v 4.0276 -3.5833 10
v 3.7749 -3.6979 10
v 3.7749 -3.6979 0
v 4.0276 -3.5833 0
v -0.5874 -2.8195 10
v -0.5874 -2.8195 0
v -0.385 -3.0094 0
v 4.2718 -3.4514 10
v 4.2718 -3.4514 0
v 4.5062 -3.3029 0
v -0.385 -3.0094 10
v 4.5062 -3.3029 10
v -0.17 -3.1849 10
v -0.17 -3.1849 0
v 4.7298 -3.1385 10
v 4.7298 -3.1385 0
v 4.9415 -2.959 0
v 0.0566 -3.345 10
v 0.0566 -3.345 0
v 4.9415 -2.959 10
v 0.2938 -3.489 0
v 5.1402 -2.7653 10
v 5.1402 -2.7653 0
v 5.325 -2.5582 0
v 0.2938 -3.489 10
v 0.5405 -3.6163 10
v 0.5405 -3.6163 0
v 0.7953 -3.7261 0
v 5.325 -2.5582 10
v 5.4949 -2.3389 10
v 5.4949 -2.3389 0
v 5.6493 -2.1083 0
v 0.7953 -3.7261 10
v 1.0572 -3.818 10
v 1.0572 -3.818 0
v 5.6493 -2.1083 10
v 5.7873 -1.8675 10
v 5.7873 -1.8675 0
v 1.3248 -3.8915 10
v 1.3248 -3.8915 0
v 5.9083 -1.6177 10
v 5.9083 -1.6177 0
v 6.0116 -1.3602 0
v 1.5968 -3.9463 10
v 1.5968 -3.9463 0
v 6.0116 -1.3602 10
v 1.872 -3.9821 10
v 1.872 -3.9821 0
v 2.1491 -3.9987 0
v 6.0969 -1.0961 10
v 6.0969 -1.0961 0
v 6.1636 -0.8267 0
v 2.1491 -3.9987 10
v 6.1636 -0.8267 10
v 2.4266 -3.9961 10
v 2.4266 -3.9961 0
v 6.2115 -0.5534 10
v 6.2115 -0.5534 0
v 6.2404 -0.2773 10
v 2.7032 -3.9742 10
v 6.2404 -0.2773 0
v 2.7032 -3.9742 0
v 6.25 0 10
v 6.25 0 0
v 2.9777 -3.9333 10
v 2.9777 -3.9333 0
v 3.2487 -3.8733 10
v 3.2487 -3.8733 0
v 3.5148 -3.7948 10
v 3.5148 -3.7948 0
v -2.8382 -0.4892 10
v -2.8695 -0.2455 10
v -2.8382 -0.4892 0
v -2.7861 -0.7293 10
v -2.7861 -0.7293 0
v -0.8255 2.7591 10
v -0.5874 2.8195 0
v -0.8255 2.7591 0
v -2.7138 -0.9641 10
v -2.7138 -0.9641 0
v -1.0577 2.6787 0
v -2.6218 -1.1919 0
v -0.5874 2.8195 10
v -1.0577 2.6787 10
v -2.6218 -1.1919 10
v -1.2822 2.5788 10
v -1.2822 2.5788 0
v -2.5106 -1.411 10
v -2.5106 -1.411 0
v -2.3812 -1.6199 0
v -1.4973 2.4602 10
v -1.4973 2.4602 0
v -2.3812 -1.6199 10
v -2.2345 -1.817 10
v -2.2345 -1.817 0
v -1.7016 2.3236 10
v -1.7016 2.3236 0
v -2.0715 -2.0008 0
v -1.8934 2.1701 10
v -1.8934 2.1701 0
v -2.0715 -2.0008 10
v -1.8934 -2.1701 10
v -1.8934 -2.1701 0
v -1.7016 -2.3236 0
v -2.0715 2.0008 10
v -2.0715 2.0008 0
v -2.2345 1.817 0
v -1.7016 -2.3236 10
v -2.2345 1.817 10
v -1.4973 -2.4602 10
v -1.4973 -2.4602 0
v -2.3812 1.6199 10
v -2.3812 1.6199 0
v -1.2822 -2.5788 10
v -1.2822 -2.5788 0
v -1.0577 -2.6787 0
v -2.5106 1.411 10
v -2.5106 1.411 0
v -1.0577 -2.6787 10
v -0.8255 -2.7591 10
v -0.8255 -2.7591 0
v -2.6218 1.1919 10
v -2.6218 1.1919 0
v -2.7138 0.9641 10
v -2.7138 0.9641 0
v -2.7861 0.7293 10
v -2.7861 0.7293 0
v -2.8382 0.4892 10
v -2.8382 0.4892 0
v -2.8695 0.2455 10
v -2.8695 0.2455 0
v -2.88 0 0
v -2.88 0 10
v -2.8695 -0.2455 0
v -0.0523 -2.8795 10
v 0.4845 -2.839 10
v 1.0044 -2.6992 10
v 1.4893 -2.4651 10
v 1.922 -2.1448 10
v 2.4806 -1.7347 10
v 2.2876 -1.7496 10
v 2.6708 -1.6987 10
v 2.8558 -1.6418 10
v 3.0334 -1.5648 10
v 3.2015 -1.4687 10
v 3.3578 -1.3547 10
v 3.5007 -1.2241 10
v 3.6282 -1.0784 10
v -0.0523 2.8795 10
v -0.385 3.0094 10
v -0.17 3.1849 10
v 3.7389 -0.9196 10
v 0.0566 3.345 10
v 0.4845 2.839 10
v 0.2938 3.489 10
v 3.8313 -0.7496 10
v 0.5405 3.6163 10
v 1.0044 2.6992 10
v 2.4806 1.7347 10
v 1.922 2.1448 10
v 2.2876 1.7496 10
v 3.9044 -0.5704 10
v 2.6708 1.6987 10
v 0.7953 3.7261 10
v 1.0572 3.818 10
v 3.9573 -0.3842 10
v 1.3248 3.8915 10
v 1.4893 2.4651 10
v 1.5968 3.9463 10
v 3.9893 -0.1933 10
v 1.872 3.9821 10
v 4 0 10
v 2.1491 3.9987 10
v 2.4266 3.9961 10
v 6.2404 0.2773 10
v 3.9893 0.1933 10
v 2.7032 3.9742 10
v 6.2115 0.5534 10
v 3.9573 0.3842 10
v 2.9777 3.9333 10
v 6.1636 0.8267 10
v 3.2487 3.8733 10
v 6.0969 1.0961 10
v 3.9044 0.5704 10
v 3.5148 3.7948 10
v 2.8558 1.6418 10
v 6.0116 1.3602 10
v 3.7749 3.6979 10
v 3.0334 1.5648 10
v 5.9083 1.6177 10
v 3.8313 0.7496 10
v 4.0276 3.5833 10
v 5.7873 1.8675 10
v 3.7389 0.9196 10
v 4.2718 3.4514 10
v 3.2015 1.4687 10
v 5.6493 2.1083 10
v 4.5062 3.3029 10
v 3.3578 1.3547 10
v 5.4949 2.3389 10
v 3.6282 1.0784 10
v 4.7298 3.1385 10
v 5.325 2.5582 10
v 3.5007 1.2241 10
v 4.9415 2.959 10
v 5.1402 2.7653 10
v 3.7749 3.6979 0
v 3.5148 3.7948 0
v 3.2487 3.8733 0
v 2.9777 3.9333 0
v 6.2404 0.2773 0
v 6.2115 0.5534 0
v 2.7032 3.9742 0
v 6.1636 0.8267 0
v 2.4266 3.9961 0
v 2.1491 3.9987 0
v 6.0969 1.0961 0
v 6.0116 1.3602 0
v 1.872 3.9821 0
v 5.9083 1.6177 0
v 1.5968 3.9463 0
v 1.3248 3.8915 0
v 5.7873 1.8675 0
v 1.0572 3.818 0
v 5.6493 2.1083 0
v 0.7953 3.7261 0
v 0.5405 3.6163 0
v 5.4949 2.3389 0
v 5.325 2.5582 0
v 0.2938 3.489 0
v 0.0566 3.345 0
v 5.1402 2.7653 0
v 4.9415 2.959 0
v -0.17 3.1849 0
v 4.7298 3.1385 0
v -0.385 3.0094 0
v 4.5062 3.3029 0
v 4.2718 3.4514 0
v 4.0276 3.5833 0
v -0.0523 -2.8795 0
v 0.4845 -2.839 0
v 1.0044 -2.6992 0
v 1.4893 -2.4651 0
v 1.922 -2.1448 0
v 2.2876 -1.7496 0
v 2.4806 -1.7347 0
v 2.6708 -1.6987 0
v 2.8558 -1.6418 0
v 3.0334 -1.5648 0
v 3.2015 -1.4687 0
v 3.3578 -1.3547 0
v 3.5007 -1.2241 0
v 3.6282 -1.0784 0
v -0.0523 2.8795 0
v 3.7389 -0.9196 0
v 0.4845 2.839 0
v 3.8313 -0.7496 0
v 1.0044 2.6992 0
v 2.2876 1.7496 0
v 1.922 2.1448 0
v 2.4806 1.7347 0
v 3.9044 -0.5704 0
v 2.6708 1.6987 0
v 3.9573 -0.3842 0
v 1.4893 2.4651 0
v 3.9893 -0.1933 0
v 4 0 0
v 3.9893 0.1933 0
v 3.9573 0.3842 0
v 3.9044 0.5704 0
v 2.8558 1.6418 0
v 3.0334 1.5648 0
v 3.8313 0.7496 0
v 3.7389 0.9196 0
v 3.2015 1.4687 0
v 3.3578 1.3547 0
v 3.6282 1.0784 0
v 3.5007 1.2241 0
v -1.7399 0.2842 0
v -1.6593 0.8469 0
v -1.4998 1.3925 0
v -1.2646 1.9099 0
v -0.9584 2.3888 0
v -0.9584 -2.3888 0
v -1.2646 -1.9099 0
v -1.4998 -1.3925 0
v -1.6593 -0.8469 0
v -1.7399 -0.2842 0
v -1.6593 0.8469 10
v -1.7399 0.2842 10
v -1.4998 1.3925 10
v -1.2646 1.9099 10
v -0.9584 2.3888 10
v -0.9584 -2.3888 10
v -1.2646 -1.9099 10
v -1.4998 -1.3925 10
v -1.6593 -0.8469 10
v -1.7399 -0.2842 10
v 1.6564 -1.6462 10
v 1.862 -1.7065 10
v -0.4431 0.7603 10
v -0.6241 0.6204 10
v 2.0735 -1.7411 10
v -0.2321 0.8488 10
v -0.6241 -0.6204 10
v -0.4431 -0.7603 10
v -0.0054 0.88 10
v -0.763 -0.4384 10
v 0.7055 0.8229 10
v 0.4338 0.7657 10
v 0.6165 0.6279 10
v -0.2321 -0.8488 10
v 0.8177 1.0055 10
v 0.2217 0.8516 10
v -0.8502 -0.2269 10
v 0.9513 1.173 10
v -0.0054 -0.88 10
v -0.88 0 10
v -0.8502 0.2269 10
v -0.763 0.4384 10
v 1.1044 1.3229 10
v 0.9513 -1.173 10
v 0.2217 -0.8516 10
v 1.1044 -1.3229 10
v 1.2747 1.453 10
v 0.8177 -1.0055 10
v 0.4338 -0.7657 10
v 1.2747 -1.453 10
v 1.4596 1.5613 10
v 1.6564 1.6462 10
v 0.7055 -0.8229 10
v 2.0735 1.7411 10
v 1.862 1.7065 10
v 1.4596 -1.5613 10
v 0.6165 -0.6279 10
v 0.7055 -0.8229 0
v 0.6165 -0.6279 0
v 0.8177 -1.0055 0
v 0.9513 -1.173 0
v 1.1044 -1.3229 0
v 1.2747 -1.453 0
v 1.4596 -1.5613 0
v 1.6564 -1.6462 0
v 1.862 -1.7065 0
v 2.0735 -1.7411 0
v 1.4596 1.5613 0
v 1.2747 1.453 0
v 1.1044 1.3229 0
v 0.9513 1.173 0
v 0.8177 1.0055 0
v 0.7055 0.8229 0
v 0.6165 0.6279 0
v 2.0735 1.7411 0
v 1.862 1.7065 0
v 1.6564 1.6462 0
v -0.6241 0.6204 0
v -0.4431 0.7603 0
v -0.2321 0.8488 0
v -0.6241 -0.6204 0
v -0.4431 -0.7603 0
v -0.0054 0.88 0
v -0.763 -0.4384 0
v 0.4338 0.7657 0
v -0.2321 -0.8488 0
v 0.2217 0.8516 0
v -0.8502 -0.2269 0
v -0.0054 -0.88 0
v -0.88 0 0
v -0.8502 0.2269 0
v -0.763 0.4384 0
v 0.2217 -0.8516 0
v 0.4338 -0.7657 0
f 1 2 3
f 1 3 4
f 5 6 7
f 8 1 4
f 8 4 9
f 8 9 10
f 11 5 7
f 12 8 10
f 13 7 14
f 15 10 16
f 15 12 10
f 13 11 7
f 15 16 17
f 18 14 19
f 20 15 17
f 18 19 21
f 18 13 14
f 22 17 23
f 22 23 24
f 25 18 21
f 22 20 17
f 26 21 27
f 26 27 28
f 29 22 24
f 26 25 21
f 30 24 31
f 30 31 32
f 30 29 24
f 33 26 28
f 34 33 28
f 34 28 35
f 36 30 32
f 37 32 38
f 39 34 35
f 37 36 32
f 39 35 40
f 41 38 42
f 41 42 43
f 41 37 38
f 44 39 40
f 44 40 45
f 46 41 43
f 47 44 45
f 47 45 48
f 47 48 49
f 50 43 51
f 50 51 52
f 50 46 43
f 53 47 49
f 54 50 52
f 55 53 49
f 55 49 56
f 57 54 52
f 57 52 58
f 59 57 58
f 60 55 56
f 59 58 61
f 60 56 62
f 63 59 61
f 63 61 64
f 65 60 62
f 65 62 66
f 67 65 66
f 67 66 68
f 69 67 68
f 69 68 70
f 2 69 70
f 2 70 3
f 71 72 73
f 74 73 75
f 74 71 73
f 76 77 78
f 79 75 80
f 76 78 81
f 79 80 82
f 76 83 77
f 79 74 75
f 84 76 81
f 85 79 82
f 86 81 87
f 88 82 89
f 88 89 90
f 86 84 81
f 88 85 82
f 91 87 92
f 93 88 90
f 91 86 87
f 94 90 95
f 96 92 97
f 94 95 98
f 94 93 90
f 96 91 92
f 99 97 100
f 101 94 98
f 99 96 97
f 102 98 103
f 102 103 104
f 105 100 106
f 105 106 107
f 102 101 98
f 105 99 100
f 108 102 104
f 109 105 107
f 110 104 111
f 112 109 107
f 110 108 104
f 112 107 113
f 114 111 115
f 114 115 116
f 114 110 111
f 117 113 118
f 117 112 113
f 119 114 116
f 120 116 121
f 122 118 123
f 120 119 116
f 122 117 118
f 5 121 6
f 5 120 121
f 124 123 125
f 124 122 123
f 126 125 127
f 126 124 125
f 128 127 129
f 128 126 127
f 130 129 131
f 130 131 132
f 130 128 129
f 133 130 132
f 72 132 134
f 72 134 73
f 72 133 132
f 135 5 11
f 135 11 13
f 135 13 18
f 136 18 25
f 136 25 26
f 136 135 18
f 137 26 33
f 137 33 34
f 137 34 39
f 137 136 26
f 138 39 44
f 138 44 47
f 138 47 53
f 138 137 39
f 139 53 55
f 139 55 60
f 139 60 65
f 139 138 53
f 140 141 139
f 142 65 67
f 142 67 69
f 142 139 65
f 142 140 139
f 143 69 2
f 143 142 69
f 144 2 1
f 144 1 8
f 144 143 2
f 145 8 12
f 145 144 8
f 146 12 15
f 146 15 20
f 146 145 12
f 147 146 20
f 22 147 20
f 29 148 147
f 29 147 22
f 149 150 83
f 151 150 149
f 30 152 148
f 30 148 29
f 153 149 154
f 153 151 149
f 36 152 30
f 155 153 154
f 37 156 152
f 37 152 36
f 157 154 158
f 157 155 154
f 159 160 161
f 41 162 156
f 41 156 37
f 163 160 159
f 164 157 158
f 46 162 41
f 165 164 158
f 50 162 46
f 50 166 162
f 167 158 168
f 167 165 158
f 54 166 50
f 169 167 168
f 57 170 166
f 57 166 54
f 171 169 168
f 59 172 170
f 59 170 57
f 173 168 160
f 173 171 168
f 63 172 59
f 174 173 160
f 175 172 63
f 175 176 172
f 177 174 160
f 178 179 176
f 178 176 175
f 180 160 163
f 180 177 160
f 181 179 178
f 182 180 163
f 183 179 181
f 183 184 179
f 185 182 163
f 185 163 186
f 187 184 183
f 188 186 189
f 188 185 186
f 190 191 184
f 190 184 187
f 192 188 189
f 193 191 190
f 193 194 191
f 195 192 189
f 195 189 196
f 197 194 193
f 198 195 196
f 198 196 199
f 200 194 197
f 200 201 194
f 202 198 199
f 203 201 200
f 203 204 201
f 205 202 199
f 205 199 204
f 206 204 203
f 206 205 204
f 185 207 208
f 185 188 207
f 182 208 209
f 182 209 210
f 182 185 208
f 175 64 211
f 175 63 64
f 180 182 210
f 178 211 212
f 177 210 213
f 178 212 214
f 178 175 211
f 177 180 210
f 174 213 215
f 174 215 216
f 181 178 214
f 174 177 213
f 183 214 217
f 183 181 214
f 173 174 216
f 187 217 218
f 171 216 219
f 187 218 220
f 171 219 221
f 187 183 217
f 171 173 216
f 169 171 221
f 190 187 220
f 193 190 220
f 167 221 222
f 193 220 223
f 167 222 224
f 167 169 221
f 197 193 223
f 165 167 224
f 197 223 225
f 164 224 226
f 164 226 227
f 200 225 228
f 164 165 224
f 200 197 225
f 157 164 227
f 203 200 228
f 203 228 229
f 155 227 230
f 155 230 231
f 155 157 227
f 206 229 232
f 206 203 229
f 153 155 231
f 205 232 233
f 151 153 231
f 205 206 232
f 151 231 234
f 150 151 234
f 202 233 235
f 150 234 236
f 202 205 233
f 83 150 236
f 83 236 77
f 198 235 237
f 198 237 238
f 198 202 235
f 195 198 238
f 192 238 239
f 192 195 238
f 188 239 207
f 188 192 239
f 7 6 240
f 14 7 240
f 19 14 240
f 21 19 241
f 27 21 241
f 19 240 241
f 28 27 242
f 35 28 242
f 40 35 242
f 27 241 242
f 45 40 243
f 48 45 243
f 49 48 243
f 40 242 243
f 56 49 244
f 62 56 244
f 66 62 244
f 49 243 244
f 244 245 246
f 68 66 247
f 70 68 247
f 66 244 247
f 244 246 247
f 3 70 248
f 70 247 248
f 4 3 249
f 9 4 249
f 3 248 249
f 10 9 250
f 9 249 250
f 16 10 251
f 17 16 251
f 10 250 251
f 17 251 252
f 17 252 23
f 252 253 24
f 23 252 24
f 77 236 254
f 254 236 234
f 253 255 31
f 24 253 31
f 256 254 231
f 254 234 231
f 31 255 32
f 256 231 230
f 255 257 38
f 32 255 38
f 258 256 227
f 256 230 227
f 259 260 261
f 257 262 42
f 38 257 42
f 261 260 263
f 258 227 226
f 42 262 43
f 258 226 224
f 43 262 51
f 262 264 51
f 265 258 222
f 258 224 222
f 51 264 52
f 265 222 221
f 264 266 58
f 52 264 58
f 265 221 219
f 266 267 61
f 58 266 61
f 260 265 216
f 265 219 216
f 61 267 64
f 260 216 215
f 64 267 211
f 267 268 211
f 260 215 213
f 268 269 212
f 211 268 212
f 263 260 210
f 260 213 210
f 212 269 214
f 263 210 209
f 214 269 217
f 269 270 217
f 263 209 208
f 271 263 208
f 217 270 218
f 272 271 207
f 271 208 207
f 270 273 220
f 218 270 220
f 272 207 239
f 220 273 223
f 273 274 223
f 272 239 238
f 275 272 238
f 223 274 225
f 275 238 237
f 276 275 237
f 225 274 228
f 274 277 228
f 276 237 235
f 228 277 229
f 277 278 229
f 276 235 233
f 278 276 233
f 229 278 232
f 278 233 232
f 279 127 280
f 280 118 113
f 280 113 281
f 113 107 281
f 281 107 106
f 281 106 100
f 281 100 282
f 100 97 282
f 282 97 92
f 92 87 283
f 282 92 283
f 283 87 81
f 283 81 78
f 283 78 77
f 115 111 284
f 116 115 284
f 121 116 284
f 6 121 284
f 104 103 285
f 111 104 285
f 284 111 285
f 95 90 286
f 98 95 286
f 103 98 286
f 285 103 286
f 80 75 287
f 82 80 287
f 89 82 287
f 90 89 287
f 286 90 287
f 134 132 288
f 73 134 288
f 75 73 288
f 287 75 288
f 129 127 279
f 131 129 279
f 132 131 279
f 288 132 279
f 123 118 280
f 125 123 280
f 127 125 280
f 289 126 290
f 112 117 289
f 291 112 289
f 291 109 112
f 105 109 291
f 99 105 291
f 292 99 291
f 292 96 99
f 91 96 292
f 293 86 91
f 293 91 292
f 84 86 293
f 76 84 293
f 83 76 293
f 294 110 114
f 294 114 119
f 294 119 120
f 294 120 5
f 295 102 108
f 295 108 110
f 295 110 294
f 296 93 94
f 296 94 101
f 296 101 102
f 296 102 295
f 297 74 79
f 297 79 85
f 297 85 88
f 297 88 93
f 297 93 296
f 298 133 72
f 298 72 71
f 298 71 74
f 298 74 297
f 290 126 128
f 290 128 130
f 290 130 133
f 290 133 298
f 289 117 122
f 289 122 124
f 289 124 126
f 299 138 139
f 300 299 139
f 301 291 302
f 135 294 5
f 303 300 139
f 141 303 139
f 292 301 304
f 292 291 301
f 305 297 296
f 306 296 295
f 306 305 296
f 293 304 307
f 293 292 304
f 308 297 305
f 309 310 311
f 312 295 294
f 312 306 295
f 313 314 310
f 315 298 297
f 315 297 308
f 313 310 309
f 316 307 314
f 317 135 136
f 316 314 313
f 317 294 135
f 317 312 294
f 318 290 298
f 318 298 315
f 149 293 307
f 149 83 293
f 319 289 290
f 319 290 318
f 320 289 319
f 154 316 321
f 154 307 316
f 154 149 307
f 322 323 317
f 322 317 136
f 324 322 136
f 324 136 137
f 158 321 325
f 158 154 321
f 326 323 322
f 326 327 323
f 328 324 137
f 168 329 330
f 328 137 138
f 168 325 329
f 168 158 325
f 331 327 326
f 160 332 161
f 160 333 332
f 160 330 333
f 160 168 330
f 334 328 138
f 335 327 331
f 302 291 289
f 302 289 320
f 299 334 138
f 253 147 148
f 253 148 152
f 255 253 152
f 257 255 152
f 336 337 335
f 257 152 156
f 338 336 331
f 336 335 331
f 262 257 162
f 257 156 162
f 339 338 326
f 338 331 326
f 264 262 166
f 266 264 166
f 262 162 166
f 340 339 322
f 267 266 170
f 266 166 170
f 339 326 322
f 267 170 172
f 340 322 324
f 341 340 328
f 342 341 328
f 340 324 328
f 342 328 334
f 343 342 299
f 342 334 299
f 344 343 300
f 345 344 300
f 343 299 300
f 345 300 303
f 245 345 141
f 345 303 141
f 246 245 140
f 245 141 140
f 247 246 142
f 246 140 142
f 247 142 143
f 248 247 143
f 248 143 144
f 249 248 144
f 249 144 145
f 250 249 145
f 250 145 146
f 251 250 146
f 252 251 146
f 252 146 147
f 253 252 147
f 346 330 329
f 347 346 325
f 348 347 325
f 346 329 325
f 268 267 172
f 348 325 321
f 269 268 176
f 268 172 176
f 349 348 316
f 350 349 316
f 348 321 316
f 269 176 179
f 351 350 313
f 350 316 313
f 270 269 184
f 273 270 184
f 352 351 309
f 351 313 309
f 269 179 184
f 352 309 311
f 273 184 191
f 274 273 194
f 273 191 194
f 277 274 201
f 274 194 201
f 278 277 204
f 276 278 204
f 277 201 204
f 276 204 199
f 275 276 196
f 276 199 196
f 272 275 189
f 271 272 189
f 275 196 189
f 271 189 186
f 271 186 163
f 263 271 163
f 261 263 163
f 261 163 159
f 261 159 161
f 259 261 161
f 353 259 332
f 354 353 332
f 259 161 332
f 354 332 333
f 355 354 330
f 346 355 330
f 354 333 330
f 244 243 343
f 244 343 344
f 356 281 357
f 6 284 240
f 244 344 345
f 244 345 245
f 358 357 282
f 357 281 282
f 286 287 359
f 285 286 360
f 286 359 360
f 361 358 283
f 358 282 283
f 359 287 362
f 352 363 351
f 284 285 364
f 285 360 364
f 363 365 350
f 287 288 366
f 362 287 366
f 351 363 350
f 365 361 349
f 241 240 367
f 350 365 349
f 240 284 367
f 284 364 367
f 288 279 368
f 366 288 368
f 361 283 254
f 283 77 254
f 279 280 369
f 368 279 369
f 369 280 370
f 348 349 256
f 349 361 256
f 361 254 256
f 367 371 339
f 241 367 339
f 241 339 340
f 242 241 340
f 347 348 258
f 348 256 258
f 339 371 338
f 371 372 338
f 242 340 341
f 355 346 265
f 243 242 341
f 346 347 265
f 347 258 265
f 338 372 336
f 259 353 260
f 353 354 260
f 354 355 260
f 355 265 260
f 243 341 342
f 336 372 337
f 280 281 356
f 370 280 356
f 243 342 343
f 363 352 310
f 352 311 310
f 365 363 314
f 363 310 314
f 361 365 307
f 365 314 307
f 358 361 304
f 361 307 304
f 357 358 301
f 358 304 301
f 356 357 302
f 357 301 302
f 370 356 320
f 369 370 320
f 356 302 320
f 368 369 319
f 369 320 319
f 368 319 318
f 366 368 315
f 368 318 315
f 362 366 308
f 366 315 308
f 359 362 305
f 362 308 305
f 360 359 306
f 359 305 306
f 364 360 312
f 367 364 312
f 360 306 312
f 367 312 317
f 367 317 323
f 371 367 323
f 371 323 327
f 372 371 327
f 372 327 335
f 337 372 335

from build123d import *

# Parameters (mm, degrees)
CYLINDER001_R     = 0.88
CYLINDER001_DEPTH = 10
CYLINDER002_R     = 1.75
CYLINDER002_DEPTH = 10
CYLINDER_R        = 2.88
CYLINDER_DEPTH    = 10
CYLINDER003_R     = 4
CYLINDER003_DEPTH = 10


with BuildPart() as filament:
    # Cylinder001 → Cylinder001 (new body)
    with BuildSketch(Plane.XY):
        Circle(CYLINDER001_R)
    extrude(amount=CYLINDER001_DEPTH)


with BuildPart() as screw:
    # Cylinder002 → Cylinder002 (new body)
    with BuildSketch(Plane(origin=(2.25, 0, 0), x_dir=(1, 0, 0), z_dir=(0, 0, 1))):
        Circle(CYLINDER002_R)
    extrude(amount=CYLINDER002_DEPTH)


with BuildPart() as supportfilament:
    # Cylinder → Cylinder (new body)
    with BuildSketch(Plane.XY):
        Circle(CYLINDER_R)
    extrude(amount=CYLINDER_DEPTH)


with BuildPart() as cut001:
    # Cylinder003 → Cylinder003 (new body)
    with BuildSketch(Plane(origin=(2.25, 0, 0), x_dir=(1, 0, 0), z_dir=(0, 0, 1))):
        Circle(CYLINDER003_R)
    extrude(amount=CYLINDER003_DEPTH)

    # Fusion: union SupportFilament
    add(supportfilament.part)

    # Cut: cut Screw
    add(screw.part, mode=Mode.SUBTRACT)

    # Cut001: cut Filament
    add(filament.part, mode=Mode.SUBTRACT)


solid = cut001.part
